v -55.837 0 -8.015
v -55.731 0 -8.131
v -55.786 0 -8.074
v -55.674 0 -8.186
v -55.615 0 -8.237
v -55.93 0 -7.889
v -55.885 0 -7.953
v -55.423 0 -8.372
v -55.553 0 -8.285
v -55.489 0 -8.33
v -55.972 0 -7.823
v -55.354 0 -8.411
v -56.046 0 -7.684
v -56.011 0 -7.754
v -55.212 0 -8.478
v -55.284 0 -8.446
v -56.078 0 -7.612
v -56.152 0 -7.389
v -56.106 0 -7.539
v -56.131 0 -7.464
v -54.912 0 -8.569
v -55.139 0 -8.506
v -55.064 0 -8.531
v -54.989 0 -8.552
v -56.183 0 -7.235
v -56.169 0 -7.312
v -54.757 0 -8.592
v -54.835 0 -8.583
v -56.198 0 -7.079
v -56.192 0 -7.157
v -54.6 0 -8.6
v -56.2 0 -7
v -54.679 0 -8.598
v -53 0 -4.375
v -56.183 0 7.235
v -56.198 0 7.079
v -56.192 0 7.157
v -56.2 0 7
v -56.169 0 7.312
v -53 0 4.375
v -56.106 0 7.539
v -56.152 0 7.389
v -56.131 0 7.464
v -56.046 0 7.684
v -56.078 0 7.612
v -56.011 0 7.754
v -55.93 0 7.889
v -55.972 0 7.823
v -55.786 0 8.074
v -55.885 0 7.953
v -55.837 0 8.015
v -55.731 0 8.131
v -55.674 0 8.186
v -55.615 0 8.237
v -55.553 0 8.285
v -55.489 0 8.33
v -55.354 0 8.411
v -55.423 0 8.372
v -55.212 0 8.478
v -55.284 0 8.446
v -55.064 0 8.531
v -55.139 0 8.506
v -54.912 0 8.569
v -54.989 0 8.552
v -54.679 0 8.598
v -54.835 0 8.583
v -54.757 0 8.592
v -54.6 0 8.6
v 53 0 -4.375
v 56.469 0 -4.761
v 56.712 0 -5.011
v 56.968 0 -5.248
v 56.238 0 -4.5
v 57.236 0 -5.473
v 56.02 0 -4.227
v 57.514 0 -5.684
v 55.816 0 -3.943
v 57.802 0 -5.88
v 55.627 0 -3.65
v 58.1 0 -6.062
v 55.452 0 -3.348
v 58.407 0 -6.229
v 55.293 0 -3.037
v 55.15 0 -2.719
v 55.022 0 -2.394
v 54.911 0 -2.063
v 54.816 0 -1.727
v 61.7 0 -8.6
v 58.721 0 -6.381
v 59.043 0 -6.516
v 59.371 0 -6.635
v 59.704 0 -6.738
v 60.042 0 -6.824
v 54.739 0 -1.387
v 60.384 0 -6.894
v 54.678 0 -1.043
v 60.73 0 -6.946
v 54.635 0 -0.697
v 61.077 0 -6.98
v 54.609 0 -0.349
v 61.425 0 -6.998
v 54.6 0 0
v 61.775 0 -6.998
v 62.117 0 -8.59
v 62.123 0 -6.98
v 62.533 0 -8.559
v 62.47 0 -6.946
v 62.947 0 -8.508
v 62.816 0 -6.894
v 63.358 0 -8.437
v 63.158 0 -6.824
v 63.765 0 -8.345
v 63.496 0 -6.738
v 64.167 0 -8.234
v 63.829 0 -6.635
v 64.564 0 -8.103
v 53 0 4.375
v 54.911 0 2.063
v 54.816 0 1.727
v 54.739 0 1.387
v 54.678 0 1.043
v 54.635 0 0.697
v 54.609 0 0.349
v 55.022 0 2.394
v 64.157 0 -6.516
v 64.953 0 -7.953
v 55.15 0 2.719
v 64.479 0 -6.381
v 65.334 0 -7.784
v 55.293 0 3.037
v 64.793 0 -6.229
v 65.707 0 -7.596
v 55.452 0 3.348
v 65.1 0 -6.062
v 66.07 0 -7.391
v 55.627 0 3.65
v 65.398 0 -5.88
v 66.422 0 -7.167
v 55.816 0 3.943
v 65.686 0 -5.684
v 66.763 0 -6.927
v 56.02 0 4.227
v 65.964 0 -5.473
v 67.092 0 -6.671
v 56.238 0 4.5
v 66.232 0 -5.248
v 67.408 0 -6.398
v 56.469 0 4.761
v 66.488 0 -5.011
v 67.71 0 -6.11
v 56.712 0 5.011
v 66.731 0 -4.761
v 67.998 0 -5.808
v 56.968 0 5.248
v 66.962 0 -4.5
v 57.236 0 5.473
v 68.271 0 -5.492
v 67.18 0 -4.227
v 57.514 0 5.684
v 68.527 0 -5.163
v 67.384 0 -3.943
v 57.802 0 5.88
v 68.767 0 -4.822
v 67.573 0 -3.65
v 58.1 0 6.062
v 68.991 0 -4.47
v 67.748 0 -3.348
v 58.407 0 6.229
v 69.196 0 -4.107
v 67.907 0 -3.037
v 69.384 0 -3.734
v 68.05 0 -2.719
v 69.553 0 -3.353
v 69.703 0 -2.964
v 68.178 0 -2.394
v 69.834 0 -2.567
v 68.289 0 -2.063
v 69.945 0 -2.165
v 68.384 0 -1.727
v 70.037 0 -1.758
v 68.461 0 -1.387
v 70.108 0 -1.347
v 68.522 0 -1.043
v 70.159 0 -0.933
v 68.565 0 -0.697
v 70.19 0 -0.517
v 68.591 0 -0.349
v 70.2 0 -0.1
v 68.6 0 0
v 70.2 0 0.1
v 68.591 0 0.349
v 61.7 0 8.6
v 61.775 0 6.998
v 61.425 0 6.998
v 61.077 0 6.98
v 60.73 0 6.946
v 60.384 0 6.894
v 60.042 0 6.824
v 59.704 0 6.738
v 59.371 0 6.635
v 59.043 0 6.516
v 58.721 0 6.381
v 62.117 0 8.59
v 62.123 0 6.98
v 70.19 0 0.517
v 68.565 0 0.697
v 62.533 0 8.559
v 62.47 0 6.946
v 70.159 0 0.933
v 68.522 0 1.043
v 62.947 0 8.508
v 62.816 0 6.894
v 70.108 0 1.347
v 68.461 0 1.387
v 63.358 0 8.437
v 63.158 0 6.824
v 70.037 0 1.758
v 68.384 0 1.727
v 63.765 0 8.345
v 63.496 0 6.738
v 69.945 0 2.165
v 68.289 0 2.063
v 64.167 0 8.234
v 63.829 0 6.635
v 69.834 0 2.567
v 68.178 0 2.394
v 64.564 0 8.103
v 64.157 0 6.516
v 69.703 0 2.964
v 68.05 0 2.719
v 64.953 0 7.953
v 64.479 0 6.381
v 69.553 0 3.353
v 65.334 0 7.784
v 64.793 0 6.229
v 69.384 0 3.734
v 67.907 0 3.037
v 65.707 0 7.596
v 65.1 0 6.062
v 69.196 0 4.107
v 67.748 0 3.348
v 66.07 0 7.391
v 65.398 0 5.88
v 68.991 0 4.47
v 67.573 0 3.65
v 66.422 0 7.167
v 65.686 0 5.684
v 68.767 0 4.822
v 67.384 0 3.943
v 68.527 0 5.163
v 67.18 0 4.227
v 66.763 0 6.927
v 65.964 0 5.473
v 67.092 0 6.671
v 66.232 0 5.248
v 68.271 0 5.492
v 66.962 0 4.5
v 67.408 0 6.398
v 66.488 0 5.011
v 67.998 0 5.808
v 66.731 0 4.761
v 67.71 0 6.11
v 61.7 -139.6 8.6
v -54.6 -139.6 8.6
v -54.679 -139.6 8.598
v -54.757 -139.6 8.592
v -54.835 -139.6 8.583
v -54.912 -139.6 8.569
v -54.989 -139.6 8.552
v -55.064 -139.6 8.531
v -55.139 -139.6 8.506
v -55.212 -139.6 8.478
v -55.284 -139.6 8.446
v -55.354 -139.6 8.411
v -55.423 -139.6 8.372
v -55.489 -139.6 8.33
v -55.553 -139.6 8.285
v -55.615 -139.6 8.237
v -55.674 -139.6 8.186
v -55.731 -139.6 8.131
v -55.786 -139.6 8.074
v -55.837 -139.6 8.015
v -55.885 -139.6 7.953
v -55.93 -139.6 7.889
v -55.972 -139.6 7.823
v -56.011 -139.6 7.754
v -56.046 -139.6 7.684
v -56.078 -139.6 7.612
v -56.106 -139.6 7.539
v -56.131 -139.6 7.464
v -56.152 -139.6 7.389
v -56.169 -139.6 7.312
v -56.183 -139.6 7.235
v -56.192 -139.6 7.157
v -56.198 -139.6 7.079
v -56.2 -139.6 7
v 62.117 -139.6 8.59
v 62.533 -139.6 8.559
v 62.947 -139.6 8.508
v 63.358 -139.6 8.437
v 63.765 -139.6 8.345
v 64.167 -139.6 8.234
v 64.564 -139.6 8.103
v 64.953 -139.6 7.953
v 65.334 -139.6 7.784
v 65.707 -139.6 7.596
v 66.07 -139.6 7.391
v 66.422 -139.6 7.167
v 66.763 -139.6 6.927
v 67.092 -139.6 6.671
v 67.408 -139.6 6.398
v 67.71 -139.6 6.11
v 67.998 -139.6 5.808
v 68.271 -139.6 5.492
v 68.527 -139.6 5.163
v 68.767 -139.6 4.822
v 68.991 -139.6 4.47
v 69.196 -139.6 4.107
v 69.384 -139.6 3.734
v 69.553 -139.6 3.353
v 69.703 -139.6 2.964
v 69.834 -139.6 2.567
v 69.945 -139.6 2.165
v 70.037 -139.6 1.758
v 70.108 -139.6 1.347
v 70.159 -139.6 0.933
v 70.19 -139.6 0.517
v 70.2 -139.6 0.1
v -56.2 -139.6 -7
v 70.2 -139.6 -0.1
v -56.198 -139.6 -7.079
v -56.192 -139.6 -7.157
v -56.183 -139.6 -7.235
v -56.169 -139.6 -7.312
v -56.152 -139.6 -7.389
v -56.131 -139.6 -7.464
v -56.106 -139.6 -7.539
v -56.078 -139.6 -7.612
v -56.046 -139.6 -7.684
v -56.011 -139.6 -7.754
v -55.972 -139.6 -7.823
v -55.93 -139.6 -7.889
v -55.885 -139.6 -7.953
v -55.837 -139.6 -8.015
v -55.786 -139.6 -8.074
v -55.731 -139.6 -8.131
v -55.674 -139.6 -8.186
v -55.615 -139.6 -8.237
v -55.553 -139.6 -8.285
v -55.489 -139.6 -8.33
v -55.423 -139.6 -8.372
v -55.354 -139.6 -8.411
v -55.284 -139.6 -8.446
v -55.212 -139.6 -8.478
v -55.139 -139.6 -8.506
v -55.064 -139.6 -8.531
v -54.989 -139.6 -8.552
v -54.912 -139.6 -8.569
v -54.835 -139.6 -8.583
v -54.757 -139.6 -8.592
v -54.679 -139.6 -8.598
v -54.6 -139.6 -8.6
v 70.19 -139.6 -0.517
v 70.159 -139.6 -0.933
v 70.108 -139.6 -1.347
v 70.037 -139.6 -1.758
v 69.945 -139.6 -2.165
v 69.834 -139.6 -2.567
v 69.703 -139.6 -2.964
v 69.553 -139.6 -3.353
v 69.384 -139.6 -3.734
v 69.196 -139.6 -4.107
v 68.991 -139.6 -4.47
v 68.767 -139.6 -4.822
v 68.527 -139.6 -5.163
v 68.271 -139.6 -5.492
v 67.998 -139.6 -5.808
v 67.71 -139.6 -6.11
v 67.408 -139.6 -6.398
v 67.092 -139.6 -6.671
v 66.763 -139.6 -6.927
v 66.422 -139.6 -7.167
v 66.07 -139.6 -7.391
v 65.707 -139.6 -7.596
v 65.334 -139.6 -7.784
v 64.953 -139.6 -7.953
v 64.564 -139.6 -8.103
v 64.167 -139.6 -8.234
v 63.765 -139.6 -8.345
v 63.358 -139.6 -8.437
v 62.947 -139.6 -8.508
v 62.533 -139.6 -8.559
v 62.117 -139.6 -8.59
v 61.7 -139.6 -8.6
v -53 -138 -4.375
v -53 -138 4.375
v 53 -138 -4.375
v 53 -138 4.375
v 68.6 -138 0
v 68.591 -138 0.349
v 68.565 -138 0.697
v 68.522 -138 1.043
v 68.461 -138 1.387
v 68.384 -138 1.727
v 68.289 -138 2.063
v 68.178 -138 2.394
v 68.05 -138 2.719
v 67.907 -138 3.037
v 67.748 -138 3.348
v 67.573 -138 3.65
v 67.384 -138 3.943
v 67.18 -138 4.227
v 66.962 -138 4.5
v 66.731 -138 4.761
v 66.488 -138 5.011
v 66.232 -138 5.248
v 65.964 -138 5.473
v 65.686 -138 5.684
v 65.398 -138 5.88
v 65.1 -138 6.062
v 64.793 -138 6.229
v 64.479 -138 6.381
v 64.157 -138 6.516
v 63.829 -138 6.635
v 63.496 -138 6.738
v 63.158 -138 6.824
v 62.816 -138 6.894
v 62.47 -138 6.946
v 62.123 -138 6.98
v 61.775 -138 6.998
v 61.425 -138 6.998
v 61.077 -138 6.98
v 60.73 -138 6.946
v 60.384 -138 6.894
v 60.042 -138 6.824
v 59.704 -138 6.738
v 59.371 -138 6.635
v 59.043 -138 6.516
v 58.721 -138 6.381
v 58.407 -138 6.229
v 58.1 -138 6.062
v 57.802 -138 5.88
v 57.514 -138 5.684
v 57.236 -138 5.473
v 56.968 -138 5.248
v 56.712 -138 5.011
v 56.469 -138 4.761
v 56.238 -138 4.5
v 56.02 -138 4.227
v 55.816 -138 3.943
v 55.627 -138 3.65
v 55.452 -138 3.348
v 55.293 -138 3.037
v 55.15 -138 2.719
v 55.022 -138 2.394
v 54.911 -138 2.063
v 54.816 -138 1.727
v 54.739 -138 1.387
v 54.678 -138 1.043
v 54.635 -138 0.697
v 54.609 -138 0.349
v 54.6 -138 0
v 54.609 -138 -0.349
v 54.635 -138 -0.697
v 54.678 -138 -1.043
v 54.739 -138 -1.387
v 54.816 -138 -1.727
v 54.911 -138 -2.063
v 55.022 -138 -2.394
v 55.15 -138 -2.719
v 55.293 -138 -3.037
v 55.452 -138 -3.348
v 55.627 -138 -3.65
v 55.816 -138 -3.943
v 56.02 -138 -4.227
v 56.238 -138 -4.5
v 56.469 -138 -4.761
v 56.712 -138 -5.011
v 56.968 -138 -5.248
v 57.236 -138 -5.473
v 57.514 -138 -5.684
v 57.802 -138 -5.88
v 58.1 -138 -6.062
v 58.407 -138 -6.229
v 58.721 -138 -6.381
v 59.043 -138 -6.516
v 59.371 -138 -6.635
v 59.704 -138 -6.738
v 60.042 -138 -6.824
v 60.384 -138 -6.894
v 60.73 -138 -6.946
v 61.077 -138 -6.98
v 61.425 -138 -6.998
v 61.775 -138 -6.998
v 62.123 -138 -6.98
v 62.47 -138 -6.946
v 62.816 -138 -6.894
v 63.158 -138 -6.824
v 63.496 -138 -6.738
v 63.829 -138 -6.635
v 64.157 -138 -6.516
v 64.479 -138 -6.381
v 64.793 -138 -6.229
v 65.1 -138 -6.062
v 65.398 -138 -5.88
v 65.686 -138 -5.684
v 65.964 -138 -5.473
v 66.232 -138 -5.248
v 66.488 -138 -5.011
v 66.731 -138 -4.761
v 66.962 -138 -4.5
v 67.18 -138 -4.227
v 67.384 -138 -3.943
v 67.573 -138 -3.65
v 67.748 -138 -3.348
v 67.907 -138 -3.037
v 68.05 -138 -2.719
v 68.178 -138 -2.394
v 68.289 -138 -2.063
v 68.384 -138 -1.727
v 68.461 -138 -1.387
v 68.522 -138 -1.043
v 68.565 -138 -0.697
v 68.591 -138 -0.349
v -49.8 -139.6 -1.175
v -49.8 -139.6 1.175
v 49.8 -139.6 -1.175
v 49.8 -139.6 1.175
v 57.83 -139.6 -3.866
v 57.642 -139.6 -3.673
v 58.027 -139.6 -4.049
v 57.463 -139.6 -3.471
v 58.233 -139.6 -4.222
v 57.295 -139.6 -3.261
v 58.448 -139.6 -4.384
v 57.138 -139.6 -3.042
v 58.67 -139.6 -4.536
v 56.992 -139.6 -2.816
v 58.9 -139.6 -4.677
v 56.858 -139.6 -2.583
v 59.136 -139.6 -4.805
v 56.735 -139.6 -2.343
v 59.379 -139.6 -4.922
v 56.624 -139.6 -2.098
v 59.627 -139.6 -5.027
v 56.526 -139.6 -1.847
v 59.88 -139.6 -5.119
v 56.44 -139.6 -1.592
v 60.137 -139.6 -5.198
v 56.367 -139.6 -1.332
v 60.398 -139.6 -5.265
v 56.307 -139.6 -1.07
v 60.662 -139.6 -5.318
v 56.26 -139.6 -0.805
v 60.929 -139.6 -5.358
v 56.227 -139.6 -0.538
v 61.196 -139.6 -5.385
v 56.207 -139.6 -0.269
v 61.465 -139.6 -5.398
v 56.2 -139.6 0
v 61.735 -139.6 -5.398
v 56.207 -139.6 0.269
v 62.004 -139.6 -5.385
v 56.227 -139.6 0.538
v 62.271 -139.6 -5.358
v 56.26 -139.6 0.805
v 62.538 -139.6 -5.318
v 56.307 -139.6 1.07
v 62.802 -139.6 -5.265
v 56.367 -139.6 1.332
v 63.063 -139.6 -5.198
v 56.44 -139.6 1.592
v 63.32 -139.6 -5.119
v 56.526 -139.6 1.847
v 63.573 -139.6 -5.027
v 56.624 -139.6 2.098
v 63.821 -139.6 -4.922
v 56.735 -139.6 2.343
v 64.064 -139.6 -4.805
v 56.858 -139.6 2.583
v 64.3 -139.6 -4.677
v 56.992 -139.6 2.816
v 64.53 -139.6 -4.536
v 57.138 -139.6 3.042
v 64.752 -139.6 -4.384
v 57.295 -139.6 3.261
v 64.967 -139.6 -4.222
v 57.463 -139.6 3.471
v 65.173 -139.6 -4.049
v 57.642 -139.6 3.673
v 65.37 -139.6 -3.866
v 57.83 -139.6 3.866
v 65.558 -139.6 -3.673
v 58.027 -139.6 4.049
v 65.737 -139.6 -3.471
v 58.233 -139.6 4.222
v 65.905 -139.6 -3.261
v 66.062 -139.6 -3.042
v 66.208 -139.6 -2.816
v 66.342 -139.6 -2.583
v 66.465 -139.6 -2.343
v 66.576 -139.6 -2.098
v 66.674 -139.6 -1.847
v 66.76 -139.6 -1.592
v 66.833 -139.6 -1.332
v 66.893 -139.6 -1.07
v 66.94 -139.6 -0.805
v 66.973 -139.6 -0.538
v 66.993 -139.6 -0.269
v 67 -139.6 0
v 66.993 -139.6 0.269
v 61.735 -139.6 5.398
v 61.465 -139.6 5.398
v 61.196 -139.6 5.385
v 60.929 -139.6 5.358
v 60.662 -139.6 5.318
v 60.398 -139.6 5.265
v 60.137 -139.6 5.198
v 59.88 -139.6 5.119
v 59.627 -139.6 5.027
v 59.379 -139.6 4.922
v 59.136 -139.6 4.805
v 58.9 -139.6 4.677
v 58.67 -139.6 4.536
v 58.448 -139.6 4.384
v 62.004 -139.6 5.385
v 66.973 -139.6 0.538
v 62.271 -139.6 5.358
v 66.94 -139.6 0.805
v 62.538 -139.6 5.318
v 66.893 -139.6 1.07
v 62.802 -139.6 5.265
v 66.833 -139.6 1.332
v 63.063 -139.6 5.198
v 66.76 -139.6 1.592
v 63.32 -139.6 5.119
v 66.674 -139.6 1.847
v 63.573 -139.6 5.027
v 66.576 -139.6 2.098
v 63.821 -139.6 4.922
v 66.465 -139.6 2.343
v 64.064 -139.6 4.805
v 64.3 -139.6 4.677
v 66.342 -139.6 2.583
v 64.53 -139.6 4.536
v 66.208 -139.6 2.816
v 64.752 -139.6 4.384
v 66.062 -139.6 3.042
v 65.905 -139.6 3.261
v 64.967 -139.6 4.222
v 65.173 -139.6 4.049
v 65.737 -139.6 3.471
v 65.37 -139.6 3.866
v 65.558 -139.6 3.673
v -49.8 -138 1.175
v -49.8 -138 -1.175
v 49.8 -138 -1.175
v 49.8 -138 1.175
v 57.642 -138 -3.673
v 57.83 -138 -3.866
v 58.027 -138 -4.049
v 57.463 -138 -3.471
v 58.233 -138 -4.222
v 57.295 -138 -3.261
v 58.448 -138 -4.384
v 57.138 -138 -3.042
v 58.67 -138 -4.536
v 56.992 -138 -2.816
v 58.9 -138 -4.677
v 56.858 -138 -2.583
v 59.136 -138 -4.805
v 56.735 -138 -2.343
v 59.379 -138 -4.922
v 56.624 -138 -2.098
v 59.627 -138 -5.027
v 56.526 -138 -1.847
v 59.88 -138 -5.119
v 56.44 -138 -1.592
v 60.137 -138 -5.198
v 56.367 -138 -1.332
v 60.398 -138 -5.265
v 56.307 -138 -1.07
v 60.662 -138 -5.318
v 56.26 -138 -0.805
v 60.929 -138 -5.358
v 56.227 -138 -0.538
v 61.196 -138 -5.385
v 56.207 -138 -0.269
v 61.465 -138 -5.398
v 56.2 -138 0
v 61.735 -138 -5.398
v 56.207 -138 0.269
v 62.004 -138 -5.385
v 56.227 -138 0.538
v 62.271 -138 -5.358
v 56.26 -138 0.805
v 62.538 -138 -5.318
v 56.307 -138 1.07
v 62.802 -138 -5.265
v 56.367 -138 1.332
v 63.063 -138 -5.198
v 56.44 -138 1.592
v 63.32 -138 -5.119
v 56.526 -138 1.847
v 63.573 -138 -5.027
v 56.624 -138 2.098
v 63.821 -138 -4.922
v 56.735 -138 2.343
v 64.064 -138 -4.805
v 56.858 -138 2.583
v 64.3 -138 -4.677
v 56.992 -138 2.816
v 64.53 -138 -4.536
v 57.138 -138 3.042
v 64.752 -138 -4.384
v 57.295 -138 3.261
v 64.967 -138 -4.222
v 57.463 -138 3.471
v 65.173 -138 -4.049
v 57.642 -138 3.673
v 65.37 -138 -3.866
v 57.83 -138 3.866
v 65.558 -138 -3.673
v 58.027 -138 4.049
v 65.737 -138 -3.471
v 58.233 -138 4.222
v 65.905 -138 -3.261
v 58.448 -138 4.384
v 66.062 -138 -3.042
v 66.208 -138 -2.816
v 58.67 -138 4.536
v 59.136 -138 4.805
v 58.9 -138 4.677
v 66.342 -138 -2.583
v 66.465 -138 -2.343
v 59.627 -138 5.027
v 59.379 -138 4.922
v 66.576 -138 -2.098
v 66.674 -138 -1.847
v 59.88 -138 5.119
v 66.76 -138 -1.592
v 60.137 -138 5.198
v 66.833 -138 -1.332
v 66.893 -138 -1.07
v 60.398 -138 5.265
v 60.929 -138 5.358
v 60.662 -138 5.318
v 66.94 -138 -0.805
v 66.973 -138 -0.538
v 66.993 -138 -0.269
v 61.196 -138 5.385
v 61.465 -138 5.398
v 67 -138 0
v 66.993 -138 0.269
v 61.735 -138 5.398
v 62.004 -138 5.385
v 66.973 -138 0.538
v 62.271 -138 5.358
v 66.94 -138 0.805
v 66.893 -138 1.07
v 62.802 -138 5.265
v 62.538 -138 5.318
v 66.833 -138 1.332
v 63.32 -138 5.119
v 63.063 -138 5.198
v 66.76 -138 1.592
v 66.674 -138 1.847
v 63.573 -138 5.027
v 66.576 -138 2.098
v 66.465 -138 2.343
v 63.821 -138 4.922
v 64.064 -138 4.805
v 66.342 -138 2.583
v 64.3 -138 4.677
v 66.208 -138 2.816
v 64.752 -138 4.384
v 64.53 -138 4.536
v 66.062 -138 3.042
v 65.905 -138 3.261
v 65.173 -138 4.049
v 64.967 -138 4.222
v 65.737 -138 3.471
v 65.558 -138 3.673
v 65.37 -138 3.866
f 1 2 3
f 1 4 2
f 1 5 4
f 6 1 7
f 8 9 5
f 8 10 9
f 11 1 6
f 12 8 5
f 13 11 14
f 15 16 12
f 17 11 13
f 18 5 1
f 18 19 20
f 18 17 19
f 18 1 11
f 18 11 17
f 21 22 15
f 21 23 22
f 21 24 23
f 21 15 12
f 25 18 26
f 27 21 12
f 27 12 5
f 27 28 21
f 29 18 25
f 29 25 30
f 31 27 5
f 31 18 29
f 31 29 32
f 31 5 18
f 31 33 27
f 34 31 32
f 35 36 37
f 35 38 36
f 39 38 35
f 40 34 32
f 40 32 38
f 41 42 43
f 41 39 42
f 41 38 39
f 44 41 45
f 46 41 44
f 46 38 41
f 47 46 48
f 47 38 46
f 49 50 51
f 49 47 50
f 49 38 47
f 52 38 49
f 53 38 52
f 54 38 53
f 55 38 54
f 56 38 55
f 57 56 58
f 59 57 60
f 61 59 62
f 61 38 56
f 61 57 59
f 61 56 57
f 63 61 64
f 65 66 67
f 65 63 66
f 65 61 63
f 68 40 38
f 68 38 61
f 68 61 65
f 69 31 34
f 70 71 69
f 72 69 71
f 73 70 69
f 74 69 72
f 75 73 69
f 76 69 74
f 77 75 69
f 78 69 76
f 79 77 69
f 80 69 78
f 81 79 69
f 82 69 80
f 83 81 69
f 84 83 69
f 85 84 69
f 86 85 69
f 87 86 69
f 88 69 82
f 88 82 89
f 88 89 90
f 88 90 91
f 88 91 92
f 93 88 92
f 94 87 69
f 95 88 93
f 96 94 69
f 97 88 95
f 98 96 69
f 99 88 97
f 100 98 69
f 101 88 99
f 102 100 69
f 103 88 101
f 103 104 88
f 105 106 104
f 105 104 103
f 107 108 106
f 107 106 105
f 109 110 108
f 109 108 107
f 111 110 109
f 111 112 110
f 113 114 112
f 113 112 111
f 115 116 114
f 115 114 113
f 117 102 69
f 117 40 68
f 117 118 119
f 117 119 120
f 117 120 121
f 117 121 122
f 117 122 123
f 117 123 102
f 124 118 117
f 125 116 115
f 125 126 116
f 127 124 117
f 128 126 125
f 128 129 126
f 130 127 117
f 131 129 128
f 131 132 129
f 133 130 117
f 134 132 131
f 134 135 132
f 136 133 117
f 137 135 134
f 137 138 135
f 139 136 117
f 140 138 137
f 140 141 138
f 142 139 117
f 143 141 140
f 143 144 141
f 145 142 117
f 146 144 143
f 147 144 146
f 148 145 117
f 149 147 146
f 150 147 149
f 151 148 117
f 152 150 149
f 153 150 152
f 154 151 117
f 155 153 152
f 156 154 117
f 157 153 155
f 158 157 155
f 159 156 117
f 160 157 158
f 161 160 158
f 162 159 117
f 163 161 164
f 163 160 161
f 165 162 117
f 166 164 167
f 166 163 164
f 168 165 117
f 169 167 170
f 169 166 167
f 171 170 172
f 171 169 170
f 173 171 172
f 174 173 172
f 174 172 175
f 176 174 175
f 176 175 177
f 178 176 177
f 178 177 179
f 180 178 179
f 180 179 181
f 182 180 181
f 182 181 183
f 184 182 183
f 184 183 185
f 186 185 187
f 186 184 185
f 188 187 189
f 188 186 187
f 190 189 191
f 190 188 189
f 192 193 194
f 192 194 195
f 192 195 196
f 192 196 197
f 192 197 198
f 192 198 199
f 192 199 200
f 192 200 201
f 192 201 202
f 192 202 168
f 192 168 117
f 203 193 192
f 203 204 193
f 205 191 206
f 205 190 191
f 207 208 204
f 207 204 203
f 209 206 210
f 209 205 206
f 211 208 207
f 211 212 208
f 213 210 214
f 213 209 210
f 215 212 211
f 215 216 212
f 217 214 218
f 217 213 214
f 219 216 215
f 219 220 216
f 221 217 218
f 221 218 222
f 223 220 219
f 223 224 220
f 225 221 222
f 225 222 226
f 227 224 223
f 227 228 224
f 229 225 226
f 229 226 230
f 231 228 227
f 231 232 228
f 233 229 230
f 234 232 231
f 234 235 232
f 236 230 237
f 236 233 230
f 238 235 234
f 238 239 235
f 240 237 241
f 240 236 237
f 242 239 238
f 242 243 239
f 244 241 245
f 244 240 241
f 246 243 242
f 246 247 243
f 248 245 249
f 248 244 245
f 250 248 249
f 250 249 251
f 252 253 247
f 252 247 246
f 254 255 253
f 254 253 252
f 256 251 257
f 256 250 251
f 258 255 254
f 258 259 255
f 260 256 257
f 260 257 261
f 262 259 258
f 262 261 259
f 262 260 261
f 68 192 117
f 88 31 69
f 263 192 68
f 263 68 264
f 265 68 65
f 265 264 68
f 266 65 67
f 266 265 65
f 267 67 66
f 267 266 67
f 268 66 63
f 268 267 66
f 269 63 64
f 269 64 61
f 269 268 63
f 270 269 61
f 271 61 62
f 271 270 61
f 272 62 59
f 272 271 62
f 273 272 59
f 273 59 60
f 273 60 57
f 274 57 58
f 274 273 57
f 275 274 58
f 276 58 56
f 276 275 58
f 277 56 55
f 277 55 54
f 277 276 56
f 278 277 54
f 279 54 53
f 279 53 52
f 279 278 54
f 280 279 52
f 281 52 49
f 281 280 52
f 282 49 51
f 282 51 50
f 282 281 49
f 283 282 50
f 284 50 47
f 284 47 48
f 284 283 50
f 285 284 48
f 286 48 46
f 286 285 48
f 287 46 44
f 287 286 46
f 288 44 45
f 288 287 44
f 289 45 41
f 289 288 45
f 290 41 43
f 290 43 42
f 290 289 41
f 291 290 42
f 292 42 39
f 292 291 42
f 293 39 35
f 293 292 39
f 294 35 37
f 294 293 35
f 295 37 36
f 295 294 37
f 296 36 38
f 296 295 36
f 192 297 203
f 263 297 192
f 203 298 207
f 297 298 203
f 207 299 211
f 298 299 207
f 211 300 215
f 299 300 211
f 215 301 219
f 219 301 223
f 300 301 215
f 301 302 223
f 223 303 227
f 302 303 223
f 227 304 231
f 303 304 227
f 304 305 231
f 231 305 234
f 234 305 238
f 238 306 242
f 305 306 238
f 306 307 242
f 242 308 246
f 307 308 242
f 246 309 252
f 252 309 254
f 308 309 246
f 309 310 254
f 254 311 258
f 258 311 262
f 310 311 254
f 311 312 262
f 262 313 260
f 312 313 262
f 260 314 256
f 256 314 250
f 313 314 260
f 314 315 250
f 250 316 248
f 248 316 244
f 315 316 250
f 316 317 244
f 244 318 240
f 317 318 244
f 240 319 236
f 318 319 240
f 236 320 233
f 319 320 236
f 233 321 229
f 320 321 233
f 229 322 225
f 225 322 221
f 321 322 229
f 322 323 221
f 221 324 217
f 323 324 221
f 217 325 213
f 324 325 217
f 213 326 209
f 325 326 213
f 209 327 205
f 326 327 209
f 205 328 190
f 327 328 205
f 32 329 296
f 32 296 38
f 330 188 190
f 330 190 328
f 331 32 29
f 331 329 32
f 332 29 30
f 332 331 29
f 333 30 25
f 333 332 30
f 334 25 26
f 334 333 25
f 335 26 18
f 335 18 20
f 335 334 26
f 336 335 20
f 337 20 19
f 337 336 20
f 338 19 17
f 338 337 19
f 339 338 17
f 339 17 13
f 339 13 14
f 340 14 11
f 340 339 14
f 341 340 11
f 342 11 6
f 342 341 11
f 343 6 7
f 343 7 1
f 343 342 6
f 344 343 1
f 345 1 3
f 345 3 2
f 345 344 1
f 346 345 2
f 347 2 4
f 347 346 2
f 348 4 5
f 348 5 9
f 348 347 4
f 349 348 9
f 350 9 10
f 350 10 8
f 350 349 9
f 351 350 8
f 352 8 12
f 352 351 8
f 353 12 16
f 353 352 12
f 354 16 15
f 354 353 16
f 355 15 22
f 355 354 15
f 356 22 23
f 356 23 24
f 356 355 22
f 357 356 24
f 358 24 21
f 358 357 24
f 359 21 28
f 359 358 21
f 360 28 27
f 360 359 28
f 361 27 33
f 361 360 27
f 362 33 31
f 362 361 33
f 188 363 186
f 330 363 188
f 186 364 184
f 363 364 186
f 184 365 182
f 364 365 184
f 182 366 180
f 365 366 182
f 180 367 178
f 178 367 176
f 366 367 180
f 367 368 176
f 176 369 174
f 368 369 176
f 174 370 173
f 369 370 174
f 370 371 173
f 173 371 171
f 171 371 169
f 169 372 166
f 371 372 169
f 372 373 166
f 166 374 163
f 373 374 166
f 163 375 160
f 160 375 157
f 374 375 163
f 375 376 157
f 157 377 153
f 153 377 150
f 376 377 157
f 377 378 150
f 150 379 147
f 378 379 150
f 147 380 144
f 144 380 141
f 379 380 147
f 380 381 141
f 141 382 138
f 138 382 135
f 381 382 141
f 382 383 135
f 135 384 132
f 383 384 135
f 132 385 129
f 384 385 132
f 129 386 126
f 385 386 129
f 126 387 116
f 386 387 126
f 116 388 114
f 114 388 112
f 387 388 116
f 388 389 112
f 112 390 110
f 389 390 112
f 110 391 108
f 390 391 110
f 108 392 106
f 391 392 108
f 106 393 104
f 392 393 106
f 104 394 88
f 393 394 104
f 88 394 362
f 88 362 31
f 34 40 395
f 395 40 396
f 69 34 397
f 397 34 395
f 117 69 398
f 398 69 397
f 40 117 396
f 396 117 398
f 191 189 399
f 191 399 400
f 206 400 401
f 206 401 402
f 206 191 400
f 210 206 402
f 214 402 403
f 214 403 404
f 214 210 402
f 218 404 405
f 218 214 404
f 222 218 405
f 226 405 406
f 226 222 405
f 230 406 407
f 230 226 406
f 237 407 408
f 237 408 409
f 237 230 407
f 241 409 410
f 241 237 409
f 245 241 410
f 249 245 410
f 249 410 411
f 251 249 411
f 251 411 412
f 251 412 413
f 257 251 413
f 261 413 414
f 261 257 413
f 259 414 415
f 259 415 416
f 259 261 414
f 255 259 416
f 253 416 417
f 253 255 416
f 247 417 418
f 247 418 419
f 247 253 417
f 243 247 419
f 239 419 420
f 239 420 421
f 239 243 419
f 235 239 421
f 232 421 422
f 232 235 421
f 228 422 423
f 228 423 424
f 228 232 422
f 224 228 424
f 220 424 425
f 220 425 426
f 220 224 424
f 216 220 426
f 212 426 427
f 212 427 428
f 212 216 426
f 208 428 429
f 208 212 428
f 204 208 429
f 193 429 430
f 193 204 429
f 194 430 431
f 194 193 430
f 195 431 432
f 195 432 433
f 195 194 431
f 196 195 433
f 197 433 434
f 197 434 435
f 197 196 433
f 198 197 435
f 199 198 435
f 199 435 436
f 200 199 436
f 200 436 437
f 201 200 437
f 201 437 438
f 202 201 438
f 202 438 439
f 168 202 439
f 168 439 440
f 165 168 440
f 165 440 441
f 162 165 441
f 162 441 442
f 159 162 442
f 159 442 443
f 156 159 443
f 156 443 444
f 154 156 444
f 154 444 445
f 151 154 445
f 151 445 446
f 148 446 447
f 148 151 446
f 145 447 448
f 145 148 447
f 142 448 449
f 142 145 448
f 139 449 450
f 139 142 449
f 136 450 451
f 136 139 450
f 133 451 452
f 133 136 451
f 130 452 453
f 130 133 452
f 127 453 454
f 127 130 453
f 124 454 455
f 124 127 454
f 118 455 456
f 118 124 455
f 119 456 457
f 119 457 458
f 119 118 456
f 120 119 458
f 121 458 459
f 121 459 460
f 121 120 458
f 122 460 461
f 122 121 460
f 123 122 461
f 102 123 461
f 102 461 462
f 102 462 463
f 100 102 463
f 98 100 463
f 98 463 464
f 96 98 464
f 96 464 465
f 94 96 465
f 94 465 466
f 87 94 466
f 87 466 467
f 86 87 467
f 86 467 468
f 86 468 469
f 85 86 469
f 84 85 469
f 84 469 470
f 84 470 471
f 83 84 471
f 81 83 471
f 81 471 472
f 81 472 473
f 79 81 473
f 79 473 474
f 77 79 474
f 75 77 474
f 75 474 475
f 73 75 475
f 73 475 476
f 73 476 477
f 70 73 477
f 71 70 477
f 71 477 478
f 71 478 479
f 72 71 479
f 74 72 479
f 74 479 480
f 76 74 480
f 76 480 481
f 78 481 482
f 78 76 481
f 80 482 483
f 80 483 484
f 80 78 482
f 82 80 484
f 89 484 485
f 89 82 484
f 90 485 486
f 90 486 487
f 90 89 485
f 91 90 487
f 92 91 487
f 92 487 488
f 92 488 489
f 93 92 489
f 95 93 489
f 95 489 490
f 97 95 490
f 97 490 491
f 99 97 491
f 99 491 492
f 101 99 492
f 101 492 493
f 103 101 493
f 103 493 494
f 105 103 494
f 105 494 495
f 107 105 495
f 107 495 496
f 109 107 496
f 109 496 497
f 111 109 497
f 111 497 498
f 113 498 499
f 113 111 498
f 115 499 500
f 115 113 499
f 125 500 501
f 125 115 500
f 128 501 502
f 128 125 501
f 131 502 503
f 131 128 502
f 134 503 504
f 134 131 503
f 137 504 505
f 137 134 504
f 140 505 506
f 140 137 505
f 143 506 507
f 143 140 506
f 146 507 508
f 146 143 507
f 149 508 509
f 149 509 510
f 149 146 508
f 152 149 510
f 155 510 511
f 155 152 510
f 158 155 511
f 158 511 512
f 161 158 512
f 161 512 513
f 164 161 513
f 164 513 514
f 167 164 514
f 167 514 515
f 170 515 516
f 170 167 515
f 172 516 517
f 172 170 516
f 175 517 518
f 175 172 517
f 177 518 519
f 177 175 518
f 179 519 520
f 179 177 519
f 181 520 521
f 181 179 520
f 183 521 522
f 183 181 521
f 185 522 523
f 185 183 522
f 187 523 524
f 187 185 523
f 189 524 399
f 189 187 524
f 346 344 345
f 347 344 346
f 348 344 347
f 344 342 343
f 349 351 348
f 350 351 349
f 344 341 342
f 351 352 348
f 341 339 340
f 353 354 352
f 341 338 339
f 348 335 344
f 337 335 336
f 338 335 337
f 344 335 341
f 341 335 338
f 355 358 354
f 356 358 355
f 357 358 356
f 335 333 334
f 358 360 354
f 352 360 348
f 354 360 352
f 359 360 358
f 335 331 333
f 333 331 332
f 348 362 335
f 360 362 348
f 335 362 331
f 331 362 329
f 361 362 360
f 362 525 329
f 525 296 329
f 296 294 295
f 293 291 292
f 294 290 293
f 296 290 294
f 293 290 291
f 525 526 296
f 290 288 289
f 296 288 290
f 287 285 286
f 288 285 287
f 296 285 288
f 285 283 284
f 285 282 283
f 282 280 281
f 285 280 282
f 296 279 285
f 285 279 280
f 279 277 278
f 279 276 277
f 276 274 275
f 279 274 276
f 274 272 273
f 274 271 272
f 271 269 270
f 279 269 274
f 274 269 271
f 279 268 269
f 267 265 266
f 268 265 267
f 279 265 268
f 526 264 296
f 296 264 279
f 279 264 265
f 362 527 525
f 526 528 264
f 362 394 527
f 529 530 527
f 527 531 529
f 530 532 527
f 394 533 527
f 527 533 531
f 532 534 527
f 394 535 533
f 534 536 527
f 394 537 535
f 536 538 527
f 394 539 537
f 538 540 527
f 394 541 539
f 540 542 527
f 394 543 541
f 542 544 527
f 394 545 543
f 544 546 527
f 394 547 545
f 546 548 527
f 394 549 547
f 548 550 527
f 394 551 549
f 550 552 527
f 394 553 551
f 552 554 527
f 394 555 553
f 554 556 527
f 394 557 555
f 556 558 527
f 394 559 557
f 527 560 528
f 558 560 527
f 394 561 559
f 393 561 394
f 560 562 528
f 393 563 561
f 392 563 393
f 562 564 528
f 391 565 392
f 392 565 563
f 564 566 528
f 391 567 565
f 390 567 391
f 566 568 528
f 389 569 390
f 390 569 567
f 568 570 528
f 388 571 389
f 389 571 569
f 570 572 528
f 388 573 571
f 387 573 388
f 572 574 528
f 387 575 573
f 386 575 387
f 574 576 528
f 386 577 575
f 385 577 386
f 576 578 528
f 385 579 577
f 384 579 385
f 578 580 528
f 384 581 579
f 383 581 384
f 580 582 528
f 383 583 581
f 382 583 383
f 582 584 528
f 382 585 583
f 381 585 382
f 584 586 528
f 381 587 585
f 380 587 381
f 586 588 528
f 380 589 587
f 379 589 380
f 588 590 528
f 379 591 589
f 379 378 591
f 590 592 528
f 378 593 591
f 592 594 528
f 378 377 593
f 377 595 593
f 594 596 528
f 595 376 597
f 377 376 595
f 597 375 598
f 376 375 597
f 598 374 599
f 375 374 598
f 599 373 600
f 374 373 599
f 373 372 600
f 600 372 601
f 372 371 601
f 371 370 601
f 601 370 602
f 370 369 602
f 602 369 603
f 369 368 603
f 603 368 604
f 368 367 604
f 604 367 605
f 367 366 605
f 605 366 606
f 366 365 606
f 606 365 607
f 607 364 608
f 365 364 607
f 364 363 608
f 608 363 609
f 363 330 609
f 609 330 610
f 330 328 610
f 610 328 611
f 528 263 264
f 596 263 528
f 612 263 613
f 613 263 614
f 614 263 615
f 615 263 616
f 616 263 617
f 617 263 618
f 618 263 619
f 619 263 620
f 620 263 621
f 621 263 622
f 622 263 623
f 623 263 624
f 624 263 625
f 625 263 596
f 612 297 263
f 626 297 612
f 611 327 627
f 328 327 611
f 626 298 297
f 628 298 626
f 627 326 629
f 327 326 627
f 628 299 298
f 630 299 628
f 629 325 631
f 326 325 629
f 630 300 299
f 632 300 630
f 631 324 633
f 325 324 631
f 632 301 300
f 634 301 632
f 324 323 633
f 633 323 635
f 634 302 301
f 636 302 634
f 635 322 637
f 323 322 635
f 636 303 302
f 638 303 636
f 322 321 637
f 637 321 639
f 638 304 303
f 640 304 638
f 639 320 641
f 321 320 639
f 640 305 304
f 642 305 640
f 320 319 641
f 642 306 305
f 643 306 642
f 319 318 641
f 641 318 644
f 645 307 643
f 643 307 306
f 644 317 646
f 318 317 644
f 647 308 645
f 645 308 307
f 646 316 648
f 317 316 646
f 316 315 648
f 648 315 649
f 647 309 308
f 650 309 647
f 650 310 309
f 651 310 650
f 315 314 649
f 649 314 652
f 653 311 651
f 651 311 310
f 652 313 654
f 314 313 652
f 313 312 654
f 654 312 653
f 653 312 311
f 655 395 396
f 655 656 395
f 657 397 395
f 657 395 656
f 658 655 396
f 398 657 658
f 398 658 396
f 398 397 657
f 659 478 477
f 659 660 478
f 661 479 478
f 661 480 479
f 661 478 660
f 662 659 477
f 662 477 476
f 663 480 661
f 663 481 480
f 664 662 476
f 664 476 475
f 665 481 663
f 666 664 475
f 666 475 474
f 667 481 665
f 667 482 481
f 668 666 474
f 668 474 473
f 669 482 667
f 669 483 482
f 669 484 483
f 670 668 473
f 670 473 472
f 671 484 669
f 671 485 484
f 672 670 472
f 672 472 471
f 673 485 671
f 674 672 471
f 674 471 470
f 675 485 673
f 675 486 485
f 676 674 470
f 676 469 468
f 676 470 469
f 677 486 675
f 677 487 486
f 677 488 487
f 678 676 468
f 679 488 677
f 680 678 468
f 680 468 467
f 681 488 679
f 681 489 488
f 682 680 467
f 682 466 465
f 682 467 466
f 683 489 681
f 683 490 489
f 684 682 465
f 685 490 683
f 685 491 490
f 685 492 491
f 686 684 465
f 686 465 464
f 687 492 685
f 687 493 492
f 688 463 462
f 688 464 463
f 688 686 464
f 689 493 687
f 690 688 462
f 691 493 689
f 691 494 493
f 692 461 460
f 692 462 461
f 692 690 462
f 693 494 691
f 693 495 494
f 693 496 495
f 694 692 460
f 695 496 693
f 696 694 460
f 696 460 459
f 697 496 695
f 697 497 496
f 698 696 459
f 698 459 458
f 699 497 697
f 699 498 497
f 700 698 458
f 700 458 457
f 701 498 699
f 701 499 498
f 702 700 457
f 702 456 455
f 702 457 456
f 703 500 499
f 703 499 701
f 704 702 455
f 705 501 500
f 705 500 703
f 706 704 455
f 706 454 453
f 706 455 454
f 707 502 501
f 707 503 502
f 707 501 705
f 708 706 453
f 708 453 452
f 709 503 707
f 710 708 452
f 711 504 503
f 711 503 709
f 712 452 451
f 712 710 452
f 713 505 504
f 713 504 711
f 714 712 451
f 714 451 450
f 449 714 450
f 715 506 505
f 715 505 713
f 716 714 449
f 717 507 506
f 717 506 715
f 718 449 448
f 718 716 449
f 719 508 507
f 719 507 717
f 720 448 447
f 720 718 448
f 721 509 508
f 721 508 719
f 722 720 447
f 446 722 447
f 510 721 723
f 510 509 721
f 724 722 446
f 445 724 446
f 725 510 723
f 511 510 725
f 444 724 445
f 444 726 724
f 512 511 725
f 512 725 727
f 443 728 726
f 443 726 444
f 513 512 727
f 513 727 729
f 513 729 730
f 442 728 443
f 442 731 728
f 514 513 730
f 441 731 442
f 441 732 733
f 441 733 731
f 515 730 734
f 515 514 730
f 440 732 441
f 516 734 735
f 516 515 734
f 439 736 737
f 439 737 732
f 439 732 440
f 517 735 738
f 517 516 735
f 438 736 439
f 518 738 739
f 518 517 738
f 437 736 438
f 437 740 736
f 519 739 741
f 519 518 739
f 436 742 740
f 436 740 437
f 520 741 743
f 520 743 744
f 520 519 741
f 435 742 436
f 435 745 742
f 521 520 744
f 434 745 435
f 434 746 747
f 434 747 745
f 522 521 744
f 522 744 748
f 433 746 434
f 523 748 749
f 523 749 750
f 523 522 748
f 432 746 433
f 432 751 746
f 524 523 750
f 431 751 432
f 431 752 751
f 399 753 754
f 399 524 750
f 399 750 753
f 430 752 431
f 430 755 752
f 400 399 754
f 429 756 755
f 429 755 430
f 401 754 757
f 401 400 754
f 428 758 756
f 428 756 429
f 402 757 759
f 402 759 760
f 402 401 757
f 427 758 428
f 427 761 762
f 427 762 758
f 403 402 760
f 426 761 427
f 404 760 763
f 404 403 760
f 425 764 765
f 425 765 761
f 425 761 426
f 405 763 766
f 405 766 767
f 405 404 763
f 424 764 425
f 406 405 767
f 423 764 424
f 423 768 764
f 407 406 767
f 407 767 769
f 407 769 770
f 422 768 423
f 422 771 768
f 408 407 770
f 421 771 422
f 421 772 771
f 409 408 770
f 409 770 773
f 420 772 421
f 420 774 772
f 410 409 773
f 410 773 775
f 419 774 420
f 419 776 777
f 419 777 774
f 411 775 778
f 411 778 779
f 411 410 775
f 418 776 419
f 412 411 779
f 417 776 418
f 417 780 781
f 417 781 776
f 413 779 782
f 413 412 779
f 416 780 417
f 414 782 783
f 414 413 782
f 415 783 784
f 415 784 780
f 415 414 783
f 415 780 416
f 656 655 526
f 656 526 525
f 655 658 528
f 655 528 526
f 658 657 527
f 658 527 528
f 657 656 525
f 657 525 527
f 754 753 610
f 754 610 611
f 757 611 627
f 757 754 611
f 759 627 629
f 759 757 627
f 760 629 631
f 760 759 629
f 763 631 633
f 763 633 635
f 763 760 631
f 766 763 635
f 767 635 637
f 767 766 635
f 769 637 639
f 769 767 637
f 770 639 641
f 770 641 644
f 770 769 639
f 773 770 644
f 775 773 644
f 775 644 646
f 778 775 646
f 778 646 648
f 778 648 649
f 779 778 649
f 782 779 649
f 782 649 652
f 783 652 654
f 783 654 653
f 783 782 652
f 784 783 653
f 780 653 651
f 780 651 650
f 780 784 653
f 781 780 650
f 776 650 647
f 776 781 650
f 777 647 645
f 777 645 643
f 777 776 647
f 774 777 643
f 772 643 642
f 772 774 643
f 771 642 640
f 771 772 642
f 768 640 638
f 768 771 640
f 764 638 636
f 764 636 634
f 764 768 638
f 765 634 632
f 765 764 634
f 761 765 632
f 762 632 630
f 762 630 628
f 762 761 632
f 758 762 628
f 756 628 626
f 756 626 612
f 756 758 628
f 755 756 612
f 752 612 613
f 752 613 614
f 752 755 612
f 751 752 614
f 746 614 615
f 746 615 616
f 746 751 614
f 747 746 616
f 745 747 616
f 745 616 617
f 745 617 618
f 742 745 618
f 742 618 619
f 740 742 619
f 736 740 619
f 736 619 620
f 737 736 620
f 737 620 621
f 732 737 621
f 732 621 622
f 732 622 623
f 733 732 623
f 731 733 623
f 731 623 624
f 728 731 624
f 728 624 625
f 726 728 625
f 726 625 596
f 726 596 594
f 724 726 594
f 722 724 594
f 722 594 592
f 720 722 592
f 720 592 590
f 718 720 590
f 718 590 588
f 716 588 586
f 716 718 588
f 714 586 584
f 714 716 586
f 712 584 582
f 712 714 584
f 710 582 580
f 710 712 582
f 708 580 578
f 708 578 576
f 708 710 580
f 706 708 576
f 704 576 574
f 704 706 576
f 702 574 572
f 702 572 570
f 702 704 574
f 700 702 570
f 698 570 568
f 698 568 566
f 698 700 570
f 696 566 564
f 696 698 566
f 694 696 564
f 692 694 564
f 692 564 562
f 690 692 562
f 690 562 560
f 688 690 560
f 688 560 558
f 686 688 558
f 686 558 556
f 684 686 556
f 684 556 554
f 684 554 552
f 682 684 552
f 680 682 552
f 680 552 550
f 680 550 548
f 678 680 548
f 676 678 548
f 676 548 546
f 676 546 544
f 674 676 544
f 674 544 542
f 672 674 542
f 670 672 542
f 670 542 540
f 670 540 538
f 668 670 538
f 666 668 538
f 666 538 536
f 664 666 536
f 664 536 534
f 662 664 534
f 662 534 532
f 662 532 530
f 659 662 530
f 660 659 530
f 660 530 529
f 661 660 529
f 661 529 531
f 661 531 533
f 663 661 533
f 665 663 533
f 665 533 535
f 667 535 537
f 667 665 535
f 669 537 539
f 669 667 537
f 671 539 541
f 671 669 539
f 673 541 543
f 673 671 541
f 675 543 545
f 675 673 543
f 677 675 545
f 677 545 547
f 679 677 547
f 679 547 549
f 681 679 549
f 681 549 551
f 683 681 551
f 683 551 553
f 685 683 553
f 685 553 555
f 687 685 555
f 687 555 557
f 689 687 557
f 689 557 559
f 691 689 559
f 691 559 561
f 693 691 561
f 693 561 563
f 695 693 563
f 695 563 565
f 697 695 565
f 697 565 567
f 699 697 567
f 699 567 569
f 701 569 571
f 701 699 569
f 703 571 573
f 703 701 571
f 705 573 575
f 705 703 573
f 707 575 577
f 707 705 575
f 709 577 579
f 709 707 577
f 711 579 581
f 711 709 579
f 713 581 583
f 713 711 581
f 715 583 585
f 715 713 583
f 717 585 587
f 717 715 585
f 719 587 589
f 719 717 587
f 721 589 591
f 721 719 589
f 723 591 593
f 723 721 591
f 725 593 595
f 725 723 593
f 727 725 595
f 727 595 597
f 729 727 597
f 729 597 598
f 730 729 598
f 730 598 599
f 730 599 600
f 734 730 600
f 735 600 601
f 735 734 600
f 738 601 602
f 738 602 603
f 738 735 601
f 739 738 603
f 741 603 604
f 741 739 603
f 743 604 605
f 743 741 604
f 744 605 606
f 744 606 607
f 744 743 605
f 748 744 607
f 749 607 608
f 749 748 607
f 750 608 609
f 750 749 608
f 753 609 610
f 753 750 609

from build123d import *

# Parameters (mm, degrees)
SKETCH_W     = 126.4
SKETCH_H     = 17.2
SKETCH_R     = 7
SKETCH_W_2   = 106
SKETCH_H_2   = 8.75
PAD_DEPTH    = 138
SKETCH001_W  = 126.4
SKETCH001_H  = 17.2
SKETCH001_R  = 5.4
PAD001_DEPTH = 1.6
FILLET_R     = 8.5
FILLET001_R  = 1.6
SKETCH002_W  = 99.6
SKETCH002_H  = 2.35
POCKET_DEPTH = 5


with BuildPart() as part:
    # Sketch → Pad (new body)
    with BuildSketch(Plane.XZ):
        with Locations((7, 0)):
            Rectangle(SKETCH_W, SKETCH_H)
        with Locations((61.6, 0)):
            Circle(SKETCH_R, mode=Mode.SUBTRACT)
        Rectangle(SKETCH_W_2, SKETCH_H_2, mode=Mode.SUBTRACT)
    extrude(amount=PAD_DEPTH)

    # Sketch001 (on Face11 of Pad) → Pad001 (join)
    with BuildSketch(Plane.XZ.offset(138)):
        with Locations((7, 0)):
            Rectangle(SKETCH001_W, SKETCH001_H)
        with Locations((61.6, 0)):
            Circle(SKETCH001_R, mode=Mode.SUBTRACT)
    extrude(amount=PAD001_DEPTH)

    # Fillet
    fillet_edges = [part.edges().sort_by_distance(p)[0] for p in [
        (70.2, -69.8, 8.6),
        (70.2, -69.8, -8.6),
    ]]
    fillet(fillet_edges, radius=FILLET_R)

    # Fillet001
    fillet001_edges = [part.edges().sort_by_distance(p)[0] for p in [
        (-56.2, -69.8, 8.6),
        (-56.2, -69.8, -8.6),
    ]]
    fillet(fillet001_edges, radius=FILLET001_R)

    # Sketch002 (on Face16 of Fillet001) → Pocket (cut)
    with BuildSketch(Plane(origin=(0, -138, 0), x_dir=(1, 0, 0), z_dir=(0, 1, 0))):
        Rectangle(SKETCH002_W, SKETCH002_H)
    extrude(amount=-POCKET_DEPTH, mode=Mode.SUBTRACT)


solid = part.part
